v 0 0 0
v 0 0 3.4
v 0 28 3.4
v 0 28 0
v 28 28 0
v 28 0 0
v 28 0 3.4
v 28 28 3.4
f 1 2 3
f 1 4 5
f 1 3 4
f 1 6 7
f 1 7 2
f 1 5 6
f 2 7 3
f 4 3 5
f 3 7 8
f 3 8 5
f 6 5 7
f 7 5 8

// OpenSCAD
/* Warning, this is a very basic generator with a lot of approximation 
input data : [MQFP, E9X, 28x28x3.4mm, 208, , A, C04-00069A]
generated by com.zoubworld.electronics.cad.model3d.Basic
Date : Sun Feb 15 10:50:48 CET 2026
*/

//body
color("black")
translate([0,0,0])
cube([28.0,28.0,3.4], center=false);
